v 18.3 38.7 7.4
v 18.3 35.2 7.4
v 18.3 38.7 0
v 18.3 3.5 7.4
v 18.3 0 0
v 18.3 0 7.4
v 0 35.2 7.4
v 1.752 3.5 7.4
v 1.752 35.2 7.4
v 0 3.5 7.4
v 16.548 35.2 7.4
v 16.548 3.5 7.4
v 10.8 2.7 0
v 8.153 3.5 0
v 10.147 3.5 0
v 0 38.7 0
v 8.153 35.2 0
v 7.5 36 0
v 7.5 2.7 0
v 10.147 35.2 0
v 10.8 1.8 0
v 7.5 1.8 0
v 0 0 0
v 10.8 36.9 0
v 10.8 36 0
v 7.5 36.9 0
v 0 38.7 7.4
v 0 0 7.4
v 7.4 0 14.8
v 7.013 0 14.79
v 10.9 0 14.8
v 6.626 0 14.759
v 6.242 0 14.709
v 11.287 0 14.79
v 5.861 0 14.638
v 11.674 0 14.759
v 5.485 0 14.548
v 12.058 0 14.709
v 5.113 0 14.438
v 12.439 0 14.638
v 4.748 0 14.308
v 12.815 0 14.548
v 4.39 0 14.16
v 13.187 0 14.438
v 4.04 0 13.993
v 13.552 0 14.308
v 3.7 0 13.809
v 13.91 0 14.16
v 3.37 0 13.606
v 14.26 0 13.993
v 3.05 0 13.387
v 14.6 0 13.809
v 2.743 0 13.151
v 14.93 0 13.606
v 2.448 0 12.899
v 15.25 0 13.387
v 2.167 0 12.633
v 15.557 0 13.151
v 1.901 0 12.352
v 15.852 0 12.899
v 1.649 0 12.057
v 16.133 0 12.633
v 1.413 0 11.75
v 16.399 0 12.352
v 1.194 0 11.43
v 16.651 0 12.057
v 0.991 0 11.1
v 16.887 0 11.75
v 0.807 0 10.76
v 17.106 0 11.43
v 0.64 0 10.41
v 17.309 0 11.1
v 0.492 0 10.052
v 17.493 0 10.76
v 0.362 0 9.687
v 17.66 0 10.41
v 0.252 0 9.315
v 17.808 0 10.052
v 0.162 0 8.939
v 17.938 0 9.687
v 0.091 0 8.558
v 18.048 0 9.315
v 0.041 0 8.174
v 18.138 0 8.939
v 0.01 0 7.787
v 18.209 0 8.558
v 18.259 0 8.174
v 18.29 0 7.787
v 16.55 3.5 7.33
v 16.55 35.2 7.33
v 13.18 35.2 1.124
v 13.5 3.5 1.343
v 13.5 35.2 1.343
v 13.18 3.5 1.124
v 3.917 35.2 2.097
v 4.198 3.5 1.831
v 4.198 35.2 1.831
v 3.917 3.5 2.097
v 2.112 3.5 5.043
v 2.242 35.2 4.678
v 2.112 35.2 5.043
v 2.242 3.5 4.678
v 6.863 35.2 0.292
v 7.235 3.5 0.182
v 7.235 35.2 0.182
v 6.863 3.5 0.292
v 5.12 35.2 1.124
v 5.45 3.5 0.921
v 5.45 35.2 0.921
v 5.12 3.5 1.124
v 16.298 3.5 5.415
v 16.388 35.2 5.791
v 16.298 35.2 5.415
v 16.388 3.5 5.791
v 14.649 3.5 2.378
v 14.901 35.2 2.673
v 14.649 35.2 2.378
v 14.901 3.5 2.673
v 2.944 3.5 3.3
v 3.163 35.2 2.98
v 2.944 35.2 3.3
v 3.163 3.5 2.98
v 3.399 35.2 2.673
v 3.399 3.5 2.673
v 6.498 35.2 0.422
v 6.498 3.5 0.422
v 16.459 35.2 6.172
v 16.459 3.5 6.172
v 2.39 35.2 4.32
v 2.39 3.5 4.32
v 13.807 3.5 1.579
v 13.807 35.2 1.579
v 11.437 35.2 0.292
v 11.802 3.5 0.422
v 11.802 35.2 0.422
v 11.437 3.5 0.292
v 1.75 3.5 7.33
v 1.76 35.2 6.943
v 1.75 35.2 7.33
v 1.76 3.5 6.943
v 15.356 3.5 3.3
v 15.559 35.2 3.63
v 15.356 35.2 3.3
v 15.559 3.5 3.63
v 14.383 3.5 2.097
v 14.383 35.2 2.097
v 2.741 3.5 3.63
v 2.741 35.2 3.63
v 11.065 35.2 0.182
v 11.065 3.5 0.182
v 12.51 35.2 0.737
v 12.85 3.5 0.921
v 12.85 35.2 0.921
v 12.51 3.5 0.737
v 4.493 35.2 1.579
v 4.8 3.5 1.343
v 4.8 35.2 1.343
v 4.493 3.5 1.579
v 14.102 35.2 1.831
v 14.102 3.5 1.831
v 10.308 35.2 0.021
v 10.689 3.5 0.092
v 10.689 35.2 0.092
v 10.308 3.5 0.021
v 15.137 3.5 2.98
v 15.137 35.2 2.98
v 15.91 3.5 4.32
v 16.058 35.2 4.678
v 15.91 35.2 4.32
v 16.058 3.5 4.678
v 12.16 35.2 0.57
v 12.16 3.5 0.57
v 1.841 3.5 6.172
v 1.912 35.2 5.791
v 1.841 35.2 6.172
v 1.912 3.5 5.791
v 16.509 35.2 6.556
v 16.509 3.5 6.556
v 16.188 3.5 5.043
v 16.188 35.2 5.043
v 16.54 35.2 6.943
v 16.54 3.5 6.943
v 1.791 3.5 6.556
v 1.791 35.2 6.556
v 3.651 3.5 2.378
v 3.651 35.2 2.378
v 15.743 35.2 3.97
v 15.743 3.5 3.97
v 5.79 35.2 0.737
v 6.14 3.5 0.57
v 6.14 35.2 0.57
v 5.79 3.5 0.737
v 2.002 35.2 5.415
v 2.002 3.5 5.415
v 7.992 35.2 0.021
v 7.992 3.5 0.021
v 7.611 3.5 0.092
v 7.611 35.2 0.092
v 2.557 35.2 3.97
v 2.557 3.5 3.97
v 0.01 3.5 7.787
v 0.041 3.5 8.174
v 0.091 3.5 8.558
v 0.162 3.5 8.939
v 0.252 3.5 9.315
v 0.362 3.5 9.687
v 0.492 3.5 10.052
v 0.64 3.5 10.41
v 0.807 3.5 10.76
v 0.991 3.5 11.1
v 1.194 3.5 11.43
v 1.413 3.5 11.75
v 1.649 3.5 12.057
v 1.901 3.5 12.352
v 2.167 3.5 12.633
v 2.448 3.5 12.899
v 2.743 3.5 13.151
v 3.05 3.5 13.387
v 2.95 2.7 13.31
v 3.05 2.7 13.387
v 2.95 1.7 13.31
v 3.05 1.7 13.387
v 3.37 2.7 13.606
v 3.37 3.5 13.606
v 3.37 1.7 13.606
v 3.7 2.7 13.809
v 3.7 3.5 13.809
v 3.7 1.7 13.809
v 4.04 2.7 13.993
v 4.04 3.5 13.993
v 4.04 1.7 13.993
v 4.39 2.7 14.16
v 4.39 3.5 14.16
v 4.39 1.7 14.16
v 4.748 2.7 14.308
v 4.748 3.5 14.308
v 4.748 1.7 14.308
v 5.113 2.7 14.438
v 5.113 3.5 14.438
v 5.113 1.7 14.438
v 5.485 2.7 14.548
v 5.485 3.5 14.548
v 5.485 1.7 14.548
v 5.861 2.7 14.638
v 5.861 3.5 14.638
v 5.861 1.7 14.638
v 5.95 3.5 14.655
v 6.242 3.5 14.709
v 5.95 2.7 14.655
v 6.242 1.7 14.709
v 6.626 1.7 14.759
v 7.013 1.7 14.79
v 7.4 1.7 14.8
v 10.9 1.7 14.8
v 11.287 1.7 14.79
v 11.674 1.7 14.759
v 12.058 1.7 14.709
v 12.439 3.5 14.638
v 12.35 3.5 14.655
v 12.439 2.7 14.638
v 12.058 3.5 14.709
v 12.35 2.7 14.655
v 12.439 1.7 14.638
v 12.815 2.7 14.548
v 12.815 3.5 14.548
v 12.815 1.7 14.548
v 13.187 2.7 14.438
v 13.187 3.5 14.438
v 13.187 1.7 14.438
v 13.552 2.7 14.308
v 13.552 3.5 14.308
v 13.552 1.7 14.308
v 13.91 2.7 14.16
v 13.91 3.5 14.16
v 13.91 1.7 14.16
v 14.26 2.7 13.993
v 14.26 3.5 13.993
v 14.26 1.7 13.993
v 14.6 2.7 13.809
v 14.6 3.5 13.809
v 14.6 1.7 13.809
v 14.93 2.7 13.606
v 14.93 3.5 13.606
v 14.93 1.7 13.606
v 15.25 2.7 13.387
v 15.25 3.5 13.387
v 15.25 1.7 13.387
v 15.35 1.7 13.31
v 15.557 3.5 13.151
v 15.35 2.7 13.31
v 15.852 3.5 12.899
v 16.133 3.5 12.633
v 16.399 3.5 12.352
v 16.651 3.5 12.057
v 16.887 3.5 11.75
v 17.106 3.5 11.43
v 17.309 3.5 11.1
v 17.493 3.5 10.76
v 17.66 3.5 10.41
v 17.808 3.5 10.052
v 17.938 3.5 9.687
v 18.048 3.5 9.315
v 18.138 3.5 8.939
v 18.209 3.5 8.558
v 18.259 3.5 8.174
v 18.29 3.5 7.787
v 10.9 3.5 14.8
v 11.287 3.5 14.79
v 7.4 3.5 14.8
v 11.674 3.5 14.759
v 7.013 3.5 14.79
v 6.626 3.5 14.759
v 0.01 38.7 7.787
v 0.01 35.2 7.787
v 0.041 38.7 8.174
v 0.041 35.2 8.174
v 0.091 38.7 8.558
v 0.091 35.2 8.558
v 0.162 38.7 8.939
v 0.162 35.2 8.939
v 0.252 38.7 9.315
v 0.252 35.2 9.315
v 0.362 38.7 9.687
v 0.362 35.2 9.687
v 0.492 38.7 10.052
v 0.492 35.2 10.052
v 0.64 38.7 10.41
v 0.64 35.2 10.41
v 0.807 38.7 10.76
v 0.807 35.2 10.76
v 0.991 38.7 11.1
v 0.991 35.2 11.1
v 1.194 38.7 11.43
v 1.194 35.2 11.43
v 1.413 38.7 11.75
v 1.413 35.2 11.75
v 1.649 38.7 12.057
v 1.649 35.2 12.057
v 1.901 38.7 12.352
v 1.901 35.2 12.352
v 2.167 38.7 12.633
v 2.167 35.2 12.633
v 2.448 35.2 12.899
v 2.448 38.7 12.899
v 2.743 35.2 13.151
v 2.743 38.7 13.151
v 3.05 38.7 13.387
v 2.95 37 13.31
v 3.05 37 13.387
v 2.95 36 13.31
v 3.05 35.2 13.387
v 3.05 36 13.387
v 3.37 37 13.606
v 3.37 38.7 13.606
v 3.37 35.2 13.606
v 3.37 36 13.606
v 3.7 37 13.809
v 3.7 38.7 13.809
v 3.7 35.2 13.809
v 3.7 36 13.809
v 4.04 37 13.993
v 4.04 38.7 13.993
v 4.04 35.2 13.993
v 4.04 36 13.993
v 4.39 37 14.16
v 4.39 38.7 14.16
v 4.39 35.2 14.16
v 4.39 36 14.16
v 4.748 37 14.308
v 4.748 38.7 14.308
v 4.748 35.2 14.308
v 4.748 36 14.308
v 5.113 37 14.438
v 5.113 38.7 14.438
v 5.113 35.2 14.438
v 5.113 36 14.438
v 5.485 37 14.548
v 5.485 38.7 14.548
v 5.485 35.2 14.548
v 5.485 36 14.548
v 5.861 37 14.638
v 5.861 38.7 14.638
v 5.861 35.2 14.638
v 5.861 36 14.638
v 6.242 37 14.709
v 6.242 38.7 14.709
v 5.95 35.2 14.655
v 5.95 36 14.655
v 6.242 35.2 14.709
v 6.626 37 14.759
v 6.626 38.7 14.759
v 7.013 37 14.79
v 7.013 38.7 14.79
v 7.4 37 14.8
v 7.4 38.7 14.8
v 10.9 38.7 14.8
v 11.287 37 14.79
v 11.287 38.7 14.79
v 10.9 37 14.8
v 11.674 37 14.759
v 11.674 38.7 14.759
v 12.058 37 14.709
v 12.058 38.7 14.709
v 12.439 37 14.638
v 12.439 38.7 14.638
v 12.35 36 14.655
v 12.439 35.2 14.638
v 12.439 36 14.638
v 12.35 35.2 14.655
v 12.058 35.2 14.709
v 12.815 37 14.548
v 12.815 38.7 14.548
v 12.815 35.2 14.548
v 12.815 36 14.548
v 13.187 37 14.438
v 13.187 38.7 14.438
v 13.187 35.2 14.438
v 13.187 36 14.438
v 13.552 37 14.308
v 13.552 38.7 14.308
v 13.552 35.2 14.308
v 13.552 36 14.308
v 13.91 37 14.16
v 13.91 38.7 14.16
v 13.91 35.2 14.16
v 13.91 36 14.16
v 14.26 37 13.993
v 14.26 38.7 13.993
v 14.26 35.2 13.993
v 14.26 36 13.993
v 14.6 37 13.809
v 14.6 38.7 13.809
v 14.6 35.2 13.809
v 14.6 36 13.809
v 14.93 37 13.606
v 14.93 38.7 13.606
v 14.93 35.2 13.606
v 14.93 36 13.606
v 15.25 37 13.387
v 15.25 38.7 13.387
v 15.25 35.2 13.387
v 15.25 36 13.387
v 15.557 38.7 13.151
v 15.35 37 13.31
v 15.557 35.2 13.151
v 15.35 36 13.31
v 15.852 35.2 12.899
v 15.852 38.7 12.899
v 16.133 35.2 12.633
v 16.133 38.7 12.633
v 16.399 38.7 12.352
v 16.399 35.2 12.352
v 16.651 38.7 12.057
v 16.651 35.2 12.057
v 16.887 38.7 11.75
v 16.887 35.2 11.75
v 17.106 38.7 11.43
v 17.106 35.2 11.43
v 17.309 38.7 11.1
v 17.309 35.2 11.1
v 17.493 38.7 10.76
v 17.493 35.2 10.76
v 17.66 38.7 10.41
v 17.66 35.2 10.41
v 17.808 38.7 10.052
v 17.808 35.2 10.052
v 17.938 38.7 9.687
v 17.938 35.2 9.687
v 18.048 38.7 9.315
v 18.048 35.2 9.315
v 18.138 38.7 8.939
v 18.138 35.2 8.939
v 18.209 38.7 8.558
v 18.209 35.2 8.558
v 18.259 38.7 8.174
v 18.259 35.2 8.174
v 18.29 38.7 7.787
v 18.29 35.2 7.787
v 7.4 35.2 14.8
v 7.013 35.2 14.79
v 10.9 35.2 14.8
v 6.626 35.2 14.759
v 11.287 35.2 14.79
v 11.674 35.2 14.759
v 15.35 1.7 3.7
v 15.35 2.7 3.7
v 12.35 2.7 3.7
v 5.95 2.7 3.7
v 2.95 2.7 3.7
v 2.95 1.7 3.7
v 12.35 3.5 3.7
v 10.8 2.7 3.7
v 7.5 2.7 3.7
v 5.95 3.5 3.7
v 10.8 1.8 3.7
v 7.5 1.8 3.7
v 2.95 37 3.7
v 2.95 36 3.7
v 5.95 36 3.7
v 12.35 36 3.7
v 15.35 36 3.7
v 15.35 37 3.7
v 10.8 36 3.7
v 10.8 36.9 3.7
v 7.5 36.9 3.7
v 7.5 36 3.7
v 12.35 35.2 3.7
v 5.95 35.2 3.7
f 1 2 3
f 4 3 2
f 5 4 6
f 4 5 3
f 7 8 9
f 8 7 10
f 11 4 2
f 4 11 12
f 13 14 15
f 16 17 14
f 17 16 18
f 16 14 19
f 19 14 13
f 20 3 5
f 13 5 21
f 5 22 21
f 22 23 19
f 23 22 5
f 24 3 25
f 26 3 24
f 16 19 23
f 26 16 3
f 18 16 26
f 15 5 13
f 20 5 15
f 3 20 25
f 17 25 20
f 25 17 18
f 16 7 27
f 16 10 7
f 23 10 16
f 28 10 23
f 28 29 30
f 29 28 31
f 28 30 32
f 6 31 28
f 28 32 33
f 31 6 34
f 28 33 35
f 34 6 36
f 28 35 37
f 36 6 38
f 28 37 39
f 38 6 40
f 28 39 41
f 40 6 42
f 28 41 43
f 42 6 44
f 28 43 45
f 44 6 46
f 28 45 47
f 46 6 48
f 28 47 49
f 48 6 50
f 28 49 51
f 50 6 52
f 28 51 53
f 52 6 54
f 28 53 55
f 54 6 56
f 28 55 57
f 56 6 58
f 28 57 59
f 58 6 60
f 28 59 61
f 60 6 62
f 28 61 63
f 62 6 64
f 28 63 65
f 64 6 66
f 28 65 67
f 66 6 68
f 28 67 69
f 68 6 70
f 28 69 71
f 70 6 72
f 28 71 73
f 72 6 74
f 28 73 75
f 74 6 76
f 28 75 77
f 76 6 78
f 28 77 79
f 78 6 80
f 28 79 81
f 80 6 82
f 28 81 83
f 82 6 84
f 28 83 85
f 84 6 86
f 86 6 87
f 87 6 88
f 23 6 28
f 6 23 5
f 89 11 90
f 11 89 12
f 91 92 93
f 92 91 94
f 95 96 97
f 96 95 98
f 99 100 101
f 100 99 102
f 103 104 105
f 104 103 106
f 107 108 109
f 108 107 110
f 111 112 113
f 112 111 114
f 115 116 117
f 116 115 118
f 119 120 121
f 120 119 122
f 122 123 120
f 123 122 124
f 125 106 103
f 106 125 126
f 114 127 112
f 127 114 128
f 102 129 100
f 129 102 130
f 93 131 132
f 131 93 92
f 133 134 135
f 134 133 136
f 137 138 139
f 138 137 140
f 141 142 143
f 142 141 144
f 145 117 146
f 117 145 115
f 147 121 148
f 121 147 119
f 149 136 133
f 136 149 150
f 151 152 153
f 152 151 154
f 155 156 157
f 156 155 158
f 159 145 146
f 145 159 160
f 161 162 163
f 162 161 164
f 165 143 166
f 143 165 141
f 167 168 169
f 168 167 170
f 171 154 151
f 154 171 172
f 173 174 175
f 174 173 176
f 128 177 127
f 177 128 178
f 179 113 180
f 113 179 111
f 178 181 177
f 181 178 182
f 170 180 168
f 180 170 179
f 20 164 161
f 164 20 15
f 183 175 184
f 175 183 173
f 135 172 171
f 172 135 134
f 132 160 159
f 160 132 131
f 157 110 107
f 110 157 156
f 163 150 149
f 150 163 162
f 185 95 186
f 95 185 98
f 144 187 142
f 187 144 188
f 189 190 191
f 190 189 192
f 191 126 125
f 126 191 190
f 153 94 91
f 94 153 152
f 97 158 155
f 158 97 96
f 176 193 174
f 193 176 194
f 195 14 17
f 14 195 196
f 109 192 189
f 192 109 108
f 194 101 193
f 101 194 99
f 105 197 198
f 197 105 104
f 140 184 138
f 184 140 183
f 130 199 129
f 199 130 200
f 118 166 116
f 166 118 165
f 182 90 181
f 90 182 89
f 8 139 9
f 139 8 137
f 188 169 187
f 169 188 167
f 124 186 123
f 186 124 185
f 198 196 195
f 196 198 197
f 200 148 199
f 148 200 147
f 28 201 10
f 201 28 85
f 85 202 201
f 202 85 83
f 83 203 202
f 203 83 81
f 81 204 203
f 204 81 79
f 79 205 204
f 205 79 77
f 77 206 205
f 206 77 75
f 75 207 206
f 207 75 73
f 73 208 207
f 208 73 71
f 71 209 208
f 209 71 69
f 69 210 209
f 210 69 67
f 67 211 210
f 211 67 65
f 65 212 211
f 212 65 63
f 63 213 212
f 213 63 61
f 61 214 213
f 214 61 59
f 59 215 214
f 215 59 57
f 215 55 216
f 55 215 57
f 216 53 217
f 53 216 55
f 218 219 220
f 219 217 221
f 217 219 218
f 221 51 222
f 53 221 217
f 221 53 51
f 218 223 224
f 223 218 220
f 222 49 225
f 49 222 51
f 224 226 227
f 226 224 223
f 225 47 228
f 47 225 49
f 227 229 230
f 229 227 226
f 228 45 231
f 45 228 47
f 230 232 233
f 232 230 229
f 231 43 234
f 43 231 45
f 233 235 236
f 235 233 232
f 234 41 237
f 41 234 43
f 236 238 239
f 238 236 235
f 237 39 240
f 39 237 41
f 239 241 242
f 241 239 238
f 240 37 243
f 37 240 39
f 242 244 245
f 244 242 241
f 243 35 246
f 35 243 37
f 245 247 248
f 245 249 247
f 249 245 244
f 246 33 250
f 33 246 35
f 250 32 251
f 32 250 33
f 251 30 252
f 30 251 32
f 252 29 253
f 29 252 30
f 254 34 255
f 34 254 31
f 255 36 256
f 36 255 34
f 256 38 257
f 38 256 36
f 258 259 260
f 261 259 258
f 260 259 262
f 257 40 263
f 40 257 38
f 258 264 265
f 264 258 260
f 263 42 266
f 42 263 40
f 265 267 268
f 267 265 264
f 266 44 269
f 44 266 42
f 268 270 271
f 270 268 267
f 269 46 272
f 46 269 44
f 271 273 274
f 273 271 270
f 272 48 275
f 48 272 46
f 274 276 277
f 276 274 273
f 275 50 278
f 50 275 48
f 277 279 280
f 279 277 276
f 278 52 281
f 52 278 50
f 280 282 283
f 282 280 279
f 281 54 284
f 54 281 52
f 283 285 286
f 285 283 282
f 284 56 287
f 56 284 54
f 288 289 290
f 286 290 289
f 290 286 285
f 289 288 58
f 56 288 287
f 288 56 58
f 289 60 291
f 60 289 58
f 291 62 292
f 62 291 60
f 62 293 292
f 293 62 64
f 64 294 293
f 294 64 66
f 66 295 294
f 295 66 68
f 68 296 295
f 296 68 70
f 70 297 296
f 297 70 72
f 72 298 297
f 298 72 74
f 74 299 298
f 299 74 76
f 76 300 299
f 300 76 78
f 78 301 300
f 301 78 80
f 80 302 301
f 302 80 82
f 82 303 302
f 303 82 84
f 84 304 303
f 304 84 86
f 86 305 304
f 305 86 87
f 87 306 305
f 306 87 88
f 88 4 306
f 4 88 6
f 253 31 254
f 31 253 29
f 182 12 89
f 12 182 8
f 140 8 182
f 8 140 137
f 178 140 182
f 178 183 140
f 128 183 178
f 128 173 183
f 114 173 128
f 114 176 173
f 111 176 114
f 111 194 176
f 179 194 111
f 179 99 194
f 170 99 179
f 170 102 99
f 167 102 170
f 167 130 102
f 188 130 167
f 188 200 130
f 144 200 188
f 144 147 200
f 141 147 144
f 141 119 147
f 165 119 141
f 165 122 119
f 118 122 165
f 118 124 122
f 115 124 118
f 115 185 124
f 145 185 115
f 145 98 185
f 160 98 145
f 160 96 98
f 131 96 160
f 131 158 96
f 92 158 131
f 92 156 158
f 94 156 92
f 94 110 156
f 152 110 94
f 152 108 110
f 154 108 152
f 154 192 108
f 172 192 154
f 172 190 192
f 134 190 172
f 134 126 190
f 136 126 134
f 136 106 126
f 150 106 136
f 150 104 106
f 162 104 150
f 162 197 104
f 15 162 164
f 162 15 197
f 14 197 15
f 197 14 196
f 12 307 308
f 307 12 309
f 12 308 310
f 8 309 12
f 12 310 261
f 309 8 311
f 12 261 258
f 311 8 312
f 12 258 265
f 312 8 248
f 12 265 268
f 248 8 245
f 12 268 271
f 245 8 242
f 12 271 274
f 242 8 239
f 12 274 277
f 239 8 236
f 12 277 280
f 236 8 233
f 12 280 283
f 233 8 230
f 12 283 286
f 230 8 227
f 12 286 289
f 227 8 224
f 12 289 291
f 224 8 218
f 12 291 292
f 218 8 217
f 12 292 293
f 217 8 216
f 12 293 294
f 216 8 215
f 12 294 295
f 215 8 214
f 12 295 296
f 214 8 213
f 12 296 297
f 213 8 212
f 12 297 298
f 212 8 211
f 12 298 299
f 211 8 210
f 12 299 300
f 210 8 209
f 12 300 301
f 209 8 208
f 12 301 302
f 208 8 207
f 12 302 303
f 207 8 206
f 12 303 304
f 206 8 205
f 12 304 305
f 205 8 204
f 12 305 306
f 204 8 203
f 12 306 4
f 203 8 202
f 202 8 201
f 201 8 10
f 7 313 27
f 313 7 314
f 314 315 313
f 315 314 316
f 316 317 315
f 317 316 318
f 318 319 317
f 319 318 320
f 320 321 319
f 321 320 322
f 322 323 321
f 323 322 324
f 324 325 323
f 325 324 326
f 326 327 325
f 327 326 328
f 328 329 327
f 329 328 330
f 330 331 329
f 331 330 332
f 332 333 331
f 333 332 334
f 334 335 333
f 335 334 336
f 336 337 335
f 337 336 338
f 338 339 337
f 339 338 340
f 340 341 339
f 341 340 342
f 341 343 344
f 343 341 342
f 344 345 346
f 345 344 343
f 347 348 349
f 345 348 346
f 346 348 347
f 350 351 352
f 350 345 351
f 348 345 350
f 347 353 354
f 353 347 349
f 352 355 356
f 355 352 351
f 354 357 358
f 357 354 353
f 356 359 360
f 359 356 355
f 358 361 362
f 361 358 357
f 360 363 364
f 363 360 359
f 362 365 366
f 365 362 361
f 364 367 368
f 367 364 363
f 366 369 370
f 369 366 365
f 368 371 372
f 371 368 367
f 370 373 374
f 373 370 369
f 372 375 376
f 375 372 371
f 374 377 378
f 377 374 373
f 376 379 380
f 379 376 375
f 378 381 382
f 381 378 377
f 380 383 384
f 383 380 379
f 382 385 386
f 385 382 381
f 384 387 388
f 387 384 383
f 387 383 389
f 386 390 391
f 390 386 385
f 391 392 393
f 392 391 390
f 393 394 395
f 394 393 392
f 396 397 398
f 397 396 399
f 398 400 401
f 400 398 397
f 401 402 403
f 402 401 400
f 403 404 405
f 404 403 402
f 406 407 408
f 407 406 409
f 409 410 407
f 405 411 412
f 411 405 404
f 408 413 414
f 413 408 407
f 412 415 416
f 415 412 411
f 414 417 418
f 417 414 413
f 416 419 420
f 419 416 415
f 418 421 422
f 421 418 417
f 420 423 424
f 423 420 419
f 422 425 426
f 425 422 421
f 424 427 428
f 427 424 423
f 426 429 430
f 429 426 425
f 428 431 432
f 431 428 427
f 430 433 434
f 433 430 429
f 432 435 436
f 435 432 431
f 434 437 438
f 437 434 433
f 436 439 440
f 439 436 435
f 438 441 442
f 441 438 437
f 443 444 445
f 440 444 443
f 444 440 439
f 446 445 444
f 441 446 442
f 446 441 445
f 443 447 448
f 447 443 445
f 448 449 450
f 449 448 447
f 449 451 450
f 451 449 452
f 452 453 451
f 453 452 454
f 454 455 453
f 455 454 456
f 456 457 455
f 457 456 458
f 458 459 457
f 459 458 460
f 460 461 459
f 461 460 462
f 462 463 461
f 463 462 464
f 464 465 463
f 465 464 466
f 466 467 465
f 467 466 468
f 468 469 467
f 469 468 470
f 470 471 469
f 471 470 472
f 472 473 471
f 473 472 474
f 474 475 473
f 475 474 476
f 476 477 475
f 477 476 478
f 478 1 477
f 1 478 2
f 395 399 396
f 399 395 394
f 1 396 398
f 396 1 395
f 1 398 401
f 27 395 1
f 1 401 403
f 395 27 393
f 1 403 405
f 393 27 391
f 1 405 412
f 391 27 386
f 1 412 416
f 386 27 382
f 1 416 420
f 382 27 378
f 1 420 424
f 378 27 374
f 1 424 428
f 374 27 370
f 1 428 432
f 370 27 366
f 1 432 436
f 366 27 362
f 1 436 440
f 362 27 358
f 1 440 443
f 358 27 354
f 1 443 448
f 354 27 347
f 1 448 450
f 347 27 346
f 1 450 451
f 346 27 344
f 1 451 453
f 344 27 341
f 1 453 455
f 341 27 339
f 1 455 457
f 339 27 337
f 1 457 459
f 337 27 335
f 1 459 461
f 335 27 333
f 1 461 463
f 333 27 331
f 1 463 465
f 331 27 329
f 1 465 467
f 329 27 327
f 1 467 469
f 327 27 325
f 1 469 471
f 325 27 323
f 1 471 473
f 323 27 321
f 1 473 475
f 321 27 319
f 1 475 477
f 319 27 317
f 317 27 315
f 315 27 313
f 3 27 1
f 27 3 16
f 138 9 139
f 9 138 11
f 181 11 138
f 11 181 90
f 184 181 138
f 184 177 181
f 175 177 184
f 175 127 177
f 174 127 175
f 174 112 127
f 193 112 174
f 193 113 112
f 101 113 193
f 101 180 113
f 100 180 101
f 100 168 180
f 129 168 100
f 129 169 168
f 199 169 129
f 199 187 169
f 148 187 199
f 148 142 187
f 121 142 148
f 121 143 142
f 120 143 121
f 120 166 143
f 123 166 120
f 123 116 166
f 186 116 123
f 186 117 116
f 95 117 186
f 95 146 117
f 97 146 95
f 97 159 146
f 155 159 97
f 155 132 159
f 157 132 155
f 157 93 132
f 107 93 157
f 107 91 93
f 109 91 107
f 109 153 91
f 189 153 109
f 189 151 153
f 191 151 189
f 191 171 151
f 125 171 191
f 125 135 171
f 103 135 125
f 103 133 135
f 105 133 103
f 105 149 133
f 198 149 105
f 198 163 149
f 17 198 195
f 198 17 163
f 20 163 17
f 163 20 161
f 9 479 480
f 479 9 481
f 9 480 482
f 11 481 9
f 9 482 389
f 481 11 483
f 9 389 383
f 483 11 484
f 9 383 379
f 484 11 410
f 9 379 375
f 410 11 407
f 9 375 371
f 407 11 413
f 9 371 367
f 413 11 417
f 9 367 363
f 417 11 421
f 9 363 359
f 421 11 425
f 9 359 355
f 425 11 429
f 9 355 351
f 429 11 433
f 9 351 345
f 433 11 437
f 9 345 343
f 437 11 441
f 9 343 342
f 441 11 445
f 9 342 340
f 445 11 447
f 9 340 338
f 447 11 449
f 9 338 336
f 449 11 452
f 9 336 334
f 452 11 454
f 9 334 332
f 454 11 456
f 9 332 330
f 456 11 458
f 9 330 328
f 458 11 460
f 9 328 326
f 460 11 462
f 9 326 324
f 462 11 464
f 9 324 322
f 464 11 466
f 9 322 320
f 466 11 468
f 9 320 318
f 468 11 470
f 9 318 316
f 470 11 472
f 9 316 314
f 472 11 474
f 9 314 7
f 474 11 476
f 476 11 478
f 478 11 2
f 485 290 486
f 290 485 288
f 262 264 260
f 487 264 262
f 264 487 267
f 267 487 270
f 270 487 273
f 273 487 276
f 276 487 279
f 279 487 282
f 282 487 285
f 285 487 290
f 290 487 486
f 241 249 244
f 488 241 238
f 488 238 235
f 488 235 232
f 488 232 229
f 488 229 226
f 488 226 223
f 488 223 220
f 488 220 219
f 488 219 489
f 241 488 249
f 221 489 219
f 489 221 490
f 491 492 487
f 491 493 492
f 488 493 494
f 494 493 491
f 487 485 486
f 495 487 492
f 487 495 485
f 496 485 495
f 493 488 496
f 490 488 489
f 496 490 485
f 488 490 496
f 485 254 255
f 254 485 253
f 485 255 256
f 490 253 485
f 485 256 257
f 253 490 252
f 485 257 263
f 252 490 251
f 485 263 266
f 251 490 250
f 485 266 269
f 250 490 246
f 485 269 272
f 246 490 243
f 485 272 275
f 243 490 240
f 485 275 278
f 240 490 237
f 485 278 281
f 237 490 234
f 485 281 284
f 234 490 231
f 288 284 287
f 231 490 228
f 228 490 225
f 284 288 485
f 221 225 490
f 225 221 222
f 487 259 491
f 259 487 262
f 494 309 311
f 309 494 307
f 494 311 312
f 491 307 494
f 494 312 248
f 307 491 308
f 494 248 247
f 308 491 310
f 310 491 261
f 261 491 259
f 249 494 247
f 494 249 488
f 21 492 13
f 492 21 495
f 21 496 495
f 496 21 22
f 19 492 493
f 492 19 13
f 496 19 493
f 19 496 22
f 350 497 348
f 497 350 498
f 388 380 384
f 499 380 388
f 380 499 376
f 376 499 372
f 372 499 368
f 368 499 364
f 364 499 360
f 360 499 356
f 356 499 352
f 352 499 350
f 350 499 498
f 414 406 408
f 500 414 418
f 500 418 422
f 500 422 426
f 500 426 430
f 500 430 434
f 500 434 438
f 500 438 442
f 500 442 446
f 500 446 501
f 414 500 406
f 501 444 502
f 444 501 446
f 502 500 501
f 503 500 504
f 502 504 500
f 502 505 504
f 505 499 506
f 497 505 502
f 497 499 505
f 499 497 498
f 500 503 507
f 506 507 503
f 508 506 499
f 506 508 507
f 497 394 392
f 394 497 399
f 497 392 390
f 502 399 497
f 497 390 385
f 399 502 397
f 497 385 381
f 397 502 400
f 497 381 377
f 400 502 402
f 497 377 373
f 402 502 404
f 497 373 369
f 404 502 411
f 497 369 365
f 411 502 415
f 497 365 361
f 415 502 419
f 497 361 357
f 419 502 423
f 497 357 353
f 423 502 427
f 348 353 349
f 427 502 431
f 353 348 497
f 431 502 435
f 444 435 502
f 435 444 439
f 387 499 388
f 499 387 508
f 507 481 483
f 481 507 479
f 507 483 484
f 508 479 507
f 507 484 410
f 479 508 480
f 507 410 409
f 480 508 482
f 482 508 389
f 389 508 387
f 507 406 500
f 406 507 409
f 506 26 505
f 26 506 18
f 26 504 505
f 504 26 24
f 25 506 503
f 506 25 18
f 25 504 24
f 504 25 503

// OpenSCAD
// battery holder for 2/3AA Mignon NiMH Akku 1,2V 750mAh
// derived from https://github.com/not-enough-time-for-all-these-projects/18650-holder

// credits to  'Not Enough Time For All These Projects'
// (C) 2020 'Not Enough Time For All These Projects' (Creative Commons)
// modified by FUEL4EP to fit to GP75AAH Akku 2/3AA Mignon NiMH Akku 1,2V 750mAh 
//  e.g from https://www.amazon.de/Sparset-GP75AAH-Mignon-750mAh-wiederaufladbar-gr%C3%BCn/dp/B08HM5DL27
// contacts e.g. https://www.amazon.de/sourcing-map-Federplatte-Vernickelt-12mmx12mm/dp/B0B1HJHPZJ/ref=asc_df_B0B1HJHPZJ/
//  requires BOSL library: https://github.com/revarbat/BOSL)

include <BOSL/constants.scad>
use <BOSL/masks.scad>
use <BOSL/transforms.scad>
use <BOSL/metric_screws.scad>

// count of cells
numBatteries = 1;

// BatteryDimensions
// https://en.wikipedia.org/wiki/List_of_battery_sizes#Cylindrical_lithium-ion_rechargeable_battery
// 18650
batteryDiameter = 14.8;
batteryLength = 29.2+2.5;

// variables
wallThick = 3.5;
batterySpacer = wallThick/4;
EPS=0.1;

boxWidth = (batteryDiameter + 2* batterySpacer) * numBatteries + batterySpacer * 2;
boxLength = batteryLength+ 2*(wallThick);
boxHeight = batteryDiameter / 2.0;

contactWidth         = 12.4;
contactHeight        = 12.4;
contactThick         =  0.9;
contactSpringWidth   =  6.4;
contactSlot          =  .8;
contactContactWidth  =  3.3;
contactContactLength =  7;

bracketCubeSize=0;

$fn=120;

module _contactslot() {
  translate([0, 0, contactSlot]) {
    // plate
    cube([contactWidth, contactHeight, contactThick]);
    // slot 
    cube([contactWidth, contactHeight+boxHeight, contactThick+EPS]);
    // spring
    translate([(contactWidth-contactSpringWidth)/2, 0, -contactSlot]) {
      cube([contactSpringWidth, contactHeight+boxHeight, contactSlot]);
    }
    // Contact for the plug
    translate([(contactWidth-contactContactWidth)/2,-contactContactLength,0]) {
      cube(size=[contactContactWidth, contactContactLength, contactThick]);
    }
  }
}

module contactslots() {
  translate([0, wallThick, boxHeight/2]) {
    rotate([90, 0, 0]) _contactslot();
  }
  translate([contactWidth, (boxLength-wallThick), boxHeight/2]) {
    rotate([90, 0, 180]) _contactslot();     
  }
}

module _boltBracket() {
  screwElevation=bracketCubeSize/2-get_metric_bolt_head_height(3);
  difference() {
    cube(size=[bracketCubeSize, bracketCubeSize, bracketCubeSize/2]);
    up(bracketCubeSize) {
      fillet_mask_z(l=bracketCubeSize, r=bracketCubeSize/2, align=V_DOWN);
      back(bracketCubeSize) fillet_mask_z(l=bracketCubeSize, r=bracketCubeSize/2, align=V_DOWN);
    }
    translate([bracketCubeSize/2, bracketCubeSize/2, screwElevation]) {
      rotate([0, 0, 0]) {
      // boltHole(size=3, length=5);   
      // metric_bolt(size=3, l=3, pitch=0);
      screw(screwsize=3.2, screwlen=15, headsize=get_metric_bolt_head_size(3), headlen=get_metric_bolt_head_height(3));
    }
  }

  }
}

module boltBrackets() {
  // screwHoles
  translate([-bracketCubeSize,0,0]) {
    _boltBracket();
  }
  translate([-bracketCubeSize,boxLength-bracketCubeSize,0]) {
    _boltBracket();
  }
  translate([boxWidth, boxLength, 0]) {
    rotate([180,180,0]) {
      translate([-bracketCubeSize,0,0]) {
        _boltBracket();
      }
      translate([-bracketCubeSize,boxLength-bracketCubeSize,0]) {
        _boltBracket();
      }
    }
  }
}

module outerWalls() {
  // outer walls
  thick=wallThick; 

  difference() {
    cube([boxWidth, thick, batteryDiameter]);
    up(batteryDiameter) rotate([90, 0, 0]) {
      fillet_mask_z(l=thick, r=batteryDiameter/2, align=V_DOWN);
      right(boxWidth) fillet_mask_z(l=thick, r=batteryDiameter/2, align=V_DOWN);

    }
  }

  translate([0, boxLength-wallThick, 0]) {
    difference() {
      cube([boxWidth, thick, batteryDiameter]);
      up(batteryDiameter) rotate([90, 0, 0]) {
        fillet_mask_z(l=thick, r=batteryDiameter/2, align=V_DOWN);
        right(boxWidth) fillet_mask_z(l=thick, r=batteryDiameter/2, align=V_DOWN);
      }
    }
  }
}
    
module BatteryHolder() {
  difference() {
    // baseplate
    cube([boxWidth, boxLength, boxHeight]); 

    // battery cutout
    for (i=[0:numBatteries-1]) {
      translate([i * (batteryDiameter+2*batterySpacer) + batteryDiameter/2+batterySpacer*2, boxLength, /*batteryDiameter/2+wallThick */boxHeight-.07]) {
        rotate([90, 0, 0]) {
          cylinder(h=boxLength,d=batteryDiameter);     
        }              
      }
    }
  } //difference basePlate
  outerWalls();
  //boltBrackets();
}

difference() {
  BatteryHolder();
  // cut out contact slots
  for (i=[0:numBatteries-1]) {
    translate([i*(batteryDiameter+batterySpacer*2)+(boxWidth-contactWidth)/2, 0, 0]) {
      contactslots();
    }
  }
}

 /* for (i=[0:numBatteries-1]) {
    translate([i*(batteryDiameter+batterySpacer*2)+(boxWidth-contactWidth)/2, 0, 0]) {
      contactslots();
    }
} */
